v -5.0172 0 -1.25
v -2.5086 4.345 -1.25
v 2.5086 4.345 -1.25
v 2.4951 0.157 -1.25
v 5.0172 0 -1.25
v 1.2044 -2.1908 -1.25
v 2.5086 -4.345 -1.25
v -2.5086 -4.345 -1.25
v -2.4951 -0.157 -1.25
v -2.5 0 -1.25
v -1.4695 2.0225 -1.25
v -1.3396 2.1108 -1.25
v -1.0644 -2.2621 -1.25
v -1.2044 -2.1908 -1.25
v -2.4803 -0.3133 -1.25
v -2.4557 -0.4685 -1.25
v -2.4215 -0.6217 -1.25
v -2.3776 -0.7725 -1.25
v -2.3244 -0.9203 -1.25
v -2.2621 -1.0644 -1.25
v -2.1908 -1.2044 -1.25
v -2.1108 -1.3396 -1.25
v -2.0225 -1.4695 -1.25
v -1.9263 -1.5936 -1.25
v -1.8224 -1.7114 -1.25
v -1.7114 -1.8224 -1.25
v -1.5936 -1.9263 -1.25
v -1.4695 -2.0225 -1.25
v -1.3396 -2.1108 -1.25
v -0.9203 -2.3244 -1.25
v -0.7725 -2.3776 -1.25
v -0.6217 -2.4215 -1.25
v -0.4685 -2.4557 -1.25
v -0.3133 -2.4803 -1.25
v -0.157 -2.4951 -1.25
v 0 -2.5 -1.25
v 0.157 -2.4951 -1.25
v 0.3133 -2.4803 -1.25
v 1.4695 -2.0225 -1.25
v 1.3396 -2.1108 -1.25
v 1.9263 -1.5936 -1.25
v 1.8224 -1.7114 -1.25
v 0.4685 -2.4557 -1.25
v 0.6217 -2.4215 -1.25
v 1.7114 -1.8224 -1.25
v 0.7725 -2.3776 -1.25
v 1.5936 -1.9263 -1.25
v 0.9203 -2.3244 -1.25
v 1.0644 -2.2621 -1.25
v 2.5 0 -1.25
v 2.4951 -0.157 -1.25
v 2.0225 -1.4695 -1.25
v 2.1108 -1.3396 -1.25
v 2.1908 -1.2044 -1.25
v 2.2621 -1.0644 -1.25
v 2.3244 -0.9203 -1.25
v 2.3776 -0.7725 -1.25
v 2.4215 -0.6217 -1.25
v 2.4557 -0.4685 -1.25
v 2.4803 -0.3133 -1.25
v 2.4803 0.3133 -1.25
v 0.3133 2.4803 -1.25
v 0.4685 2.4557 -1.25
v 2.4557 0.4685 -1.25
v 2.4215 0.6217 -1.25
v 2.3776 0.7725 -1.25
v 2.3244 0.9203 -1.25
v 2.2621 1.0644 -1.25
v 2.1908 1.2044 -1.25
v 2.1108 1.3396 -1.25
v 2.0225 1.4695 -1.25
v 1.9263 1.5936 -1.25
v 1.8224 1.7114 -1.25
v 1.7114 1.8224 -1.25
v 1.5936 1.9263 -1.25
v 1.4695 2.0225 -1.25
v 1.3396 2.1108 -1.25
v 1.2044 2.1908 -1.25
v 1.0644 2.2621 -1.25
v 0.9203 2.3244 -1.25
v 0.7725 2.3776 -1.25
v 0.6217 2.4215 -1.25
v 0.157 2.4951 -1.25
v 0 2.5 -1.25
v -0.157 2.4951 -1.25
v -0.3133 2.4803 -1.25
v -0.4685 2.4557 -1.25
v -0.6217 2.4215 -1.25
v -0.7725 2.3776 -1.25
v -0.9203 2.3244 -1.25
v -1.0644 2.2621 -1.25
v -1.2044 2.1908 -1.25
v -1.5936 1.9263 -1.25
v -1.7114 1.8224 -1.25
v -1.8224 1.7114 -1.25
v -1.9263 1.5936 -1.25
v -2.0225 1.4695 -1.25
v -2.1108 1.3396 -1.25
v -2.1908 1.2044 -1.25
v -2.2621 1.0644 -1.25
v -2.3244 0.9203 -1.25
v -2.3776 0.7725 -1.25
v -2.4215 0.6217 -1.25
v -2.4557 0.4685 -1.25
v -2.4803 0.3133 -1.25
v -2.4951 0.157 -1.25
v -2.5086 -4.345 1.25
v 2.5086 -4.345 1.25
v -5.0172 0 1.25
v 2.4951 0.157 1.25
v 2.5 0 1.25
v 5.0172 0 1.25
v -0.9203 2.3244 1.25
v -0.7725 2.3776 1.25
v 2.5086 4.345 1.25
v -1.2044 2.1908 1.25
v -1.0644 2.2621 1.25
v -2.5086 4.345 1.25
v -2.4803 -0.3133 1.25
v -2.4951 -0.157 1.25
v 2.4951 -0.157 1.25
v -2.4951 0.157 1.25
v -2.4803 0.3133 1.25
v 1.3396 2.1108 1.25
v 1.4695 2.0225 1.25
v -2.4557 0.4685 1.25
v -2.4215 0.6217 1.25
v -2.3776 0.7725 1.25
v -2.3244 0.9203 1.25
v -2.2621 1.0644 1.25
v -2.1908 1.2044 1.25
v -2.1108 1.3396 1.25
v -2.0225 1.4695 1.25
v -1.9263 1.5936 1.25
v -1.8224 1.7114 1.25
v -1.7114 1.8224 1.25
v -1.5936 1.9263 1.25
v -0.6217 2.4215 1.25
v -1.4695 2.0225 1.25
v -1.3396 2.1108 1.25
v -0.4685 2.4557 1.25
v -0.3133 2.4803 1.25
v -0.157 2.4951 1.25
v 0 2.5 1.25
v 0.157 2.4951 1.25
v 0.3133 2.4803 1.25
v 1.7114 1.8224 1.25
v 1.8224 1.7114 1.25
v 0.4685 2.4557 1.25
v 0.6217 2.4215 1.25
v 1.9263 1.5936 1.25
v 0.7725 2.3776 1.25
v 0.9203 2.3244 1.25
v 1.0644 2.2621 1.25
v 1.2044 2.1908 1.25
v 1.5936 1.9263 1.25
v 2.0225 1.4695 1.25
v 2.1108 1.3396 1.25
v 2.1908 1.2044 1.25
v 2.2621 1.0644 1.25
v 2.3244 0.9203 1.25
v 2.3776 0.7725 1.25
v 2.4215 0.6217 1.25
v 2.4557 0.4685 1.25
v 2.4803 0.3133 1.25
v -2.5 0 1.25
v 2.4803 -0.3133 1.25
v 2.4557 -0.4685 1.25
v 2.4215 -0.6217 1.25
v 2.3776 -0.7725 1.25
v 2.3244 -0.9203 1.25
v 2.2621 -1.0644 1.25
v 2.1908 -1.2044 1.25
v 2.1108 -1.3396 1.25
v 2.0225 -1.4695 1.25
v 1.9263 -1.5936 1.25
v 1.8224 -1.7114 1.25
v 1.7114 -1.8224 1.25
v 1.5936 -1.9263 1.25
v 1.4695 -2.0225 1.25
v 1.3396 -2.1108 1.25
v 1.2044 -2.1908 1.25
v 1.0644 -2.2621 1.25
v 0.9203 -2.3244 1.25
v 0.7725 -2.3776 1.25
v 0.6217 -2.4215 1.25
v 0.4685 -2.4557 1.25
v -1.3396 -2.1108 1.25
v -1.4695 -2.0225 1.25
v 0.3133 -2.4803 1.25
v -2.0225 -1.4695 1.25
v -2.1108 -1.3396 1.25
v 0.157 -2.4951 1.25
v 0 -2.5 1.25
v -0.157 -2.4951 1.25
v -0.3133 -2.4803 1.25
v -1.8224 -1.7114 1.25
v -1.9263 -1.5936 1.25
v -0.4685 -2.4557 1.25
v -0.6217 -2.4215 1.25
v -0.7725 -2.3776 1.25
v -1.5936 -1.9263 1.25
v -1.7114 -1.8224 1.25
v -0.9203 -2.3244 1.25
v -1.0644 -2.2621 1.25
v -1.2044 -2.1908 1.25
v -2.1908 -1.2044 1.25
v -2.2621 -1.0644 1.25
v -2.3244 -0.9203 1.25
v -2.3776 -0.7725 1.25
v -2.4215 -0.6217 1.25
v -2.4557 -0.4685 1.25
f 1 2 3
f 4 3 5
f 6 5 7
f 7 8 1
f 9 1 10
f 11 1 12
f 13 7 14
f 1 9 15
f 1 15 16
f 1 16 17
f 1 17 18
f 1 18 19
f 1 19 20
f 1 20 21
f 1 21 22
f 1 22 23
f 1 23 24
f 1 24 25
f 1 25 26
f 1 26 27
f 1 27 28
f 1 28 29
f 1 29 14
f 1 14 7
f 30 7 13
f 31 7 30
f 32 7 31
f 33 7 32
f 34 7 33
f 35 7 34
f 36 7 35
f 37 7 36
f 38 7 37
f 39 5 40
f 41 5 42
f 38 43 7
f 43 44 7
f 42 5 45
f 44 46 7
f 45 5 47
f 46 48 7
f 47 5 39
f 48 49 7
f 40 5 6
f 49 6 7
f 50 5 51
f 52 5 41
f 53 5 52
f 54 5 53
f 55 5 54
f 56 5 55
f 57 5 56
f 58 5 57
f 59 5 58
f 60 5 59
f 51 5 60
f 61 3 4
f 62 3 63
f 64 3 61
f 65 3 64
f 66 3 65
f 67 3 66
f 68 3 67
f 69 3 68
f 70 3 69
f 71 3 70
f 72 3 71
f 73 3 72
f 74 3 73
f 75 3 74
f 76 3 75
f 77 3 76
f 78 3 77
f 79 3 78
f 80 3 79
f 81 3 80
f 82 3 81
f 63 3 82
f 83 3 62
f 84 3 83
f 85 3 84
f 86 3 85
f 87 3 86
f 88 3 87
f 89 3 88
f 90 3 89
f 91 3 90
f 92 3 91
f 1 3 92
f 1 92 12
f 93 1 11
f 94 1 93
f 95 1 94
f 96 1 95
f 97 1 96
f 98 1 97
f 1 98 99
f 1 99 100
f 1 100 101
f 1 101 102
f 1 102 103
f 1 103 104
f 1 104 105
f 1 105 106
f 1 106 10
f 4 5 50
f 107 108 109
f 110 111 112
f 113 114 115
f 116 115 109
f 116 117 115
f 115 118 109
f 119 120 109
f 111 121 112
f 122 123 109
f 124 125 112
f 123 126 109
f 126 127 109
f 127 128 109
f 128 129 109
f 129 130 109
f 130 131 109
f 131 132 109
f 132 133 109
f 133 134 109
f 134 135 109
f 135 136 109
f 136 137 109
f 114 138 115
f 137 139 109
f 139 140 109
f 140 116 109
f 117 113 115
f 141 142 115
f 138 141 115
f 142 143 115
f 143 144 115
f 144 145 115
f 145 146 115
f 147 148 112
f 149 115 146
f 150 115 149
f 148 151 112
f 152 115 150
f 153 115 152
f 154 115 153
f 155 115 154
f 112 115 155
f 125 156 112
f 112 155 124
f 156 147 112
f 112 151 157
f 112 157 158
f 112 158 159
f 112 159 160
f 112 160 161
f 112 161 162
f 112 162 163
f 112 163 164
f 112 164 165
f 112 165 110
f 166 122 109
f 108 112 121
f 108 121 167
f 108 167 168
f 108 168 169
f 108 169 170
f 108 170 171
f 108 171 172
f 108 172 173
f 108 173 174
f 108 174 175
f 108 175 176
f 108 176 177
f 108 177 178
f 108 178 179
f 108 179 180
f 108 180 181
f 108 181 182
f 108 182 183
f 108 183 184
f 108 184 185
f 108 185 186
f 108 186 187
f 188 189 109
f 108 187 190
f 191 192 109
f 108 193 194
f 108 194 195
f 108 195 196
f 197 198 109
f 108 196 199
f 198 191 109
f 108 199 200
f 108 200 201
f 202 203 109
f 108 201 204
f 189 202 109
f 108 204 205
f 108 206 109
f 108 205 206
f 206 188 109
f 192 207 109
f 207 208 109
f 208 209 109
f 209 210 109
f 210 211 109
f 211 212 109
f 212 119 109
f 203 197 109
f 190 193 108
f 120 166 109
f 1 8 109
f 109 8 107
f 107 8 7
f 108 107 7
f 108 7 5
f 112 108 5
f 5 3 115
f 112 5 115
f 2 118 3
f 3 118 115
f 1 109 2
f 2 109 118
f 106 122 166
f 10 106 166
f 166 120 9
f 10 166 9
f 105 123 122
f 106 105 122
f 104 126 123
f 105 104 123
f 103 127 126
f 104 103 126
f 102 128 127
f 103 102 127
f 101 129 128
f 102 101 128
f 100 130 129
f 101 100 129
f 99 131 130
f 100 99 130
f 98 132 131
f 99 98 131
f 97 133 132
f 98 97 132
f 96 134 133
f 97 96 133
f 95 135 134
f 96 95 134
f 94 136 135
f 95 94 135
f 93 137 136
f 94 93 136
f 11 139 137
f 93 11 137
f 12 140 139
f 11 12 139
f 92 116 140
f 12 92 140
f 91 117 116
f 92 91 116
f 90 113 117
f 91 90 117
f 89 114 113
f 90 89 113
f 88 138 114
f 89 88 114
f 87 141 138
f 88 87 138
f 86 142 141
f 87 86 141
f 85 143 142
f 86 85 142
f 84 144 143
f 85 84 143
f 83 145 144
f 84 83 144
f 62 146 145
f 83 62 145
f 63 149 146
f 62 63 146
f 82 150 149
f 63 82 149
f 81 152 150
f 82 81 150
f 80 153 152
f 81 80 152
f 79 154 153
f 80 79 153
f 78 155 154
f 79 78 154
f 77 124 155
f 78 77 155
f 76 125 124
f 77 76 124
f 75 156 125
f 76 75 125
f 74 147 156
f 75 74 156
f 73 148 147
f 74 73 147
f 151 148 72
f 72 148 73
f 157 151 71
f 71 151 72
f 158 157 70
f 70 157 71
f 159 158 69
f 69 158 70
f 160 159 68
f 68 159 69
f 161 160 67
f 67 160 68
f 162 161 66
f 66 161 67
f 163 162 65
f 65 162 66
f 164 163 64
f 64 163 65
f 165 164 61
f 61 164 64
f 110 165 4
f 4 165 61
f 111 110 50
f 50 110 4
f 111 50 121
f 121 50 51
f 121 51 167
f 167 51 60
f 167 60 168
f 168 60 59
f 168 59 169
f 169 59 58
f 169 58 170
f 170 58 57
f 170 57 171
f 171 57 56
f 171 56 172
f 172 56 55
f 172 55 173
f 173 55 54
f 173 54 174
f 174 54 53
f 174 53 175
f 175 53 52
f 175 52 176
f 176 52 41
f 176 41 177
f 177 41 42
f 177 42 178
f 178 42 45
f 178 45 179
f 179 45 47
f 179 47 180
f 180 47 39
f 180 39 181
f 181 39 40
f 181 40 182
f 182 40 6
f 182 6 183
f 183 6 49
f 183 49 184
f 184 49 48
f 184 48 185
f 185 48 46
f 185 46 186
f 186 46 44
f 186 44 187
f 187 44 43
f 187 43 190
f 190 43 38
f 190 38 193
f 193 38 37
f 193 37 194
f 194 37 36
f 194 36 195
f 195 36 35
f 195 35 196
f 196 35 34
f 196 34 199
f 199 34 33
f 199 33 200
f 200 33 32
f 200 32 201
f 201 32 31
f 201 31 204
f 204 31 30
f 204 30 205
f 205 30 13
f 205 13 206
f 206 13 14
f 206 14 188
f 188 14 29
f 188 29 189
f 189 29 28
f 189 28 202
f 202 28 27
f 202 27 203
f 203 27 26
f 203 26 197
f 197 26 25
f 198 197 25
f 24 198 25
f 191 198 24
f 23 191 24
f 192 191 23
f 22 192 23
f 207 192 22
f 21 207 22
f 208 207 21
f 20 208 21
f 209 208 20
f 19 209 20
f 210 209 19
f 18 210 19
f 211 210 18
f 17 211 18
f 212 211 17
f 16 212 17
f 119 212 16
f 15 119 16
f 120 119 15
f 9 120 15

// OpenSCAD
$fn=100;
//include<dim1.scad>
x=8.69;//M5
//x=5.214;//M3
r=x/tan(60);
echo(r);
difference(){
union(){
rotate([0,0,0])cube(size = [r,x,2.5], center = true);
rotate([0,0,-60])cube(size = [r,x,2.5], center = true);
rotate([0,0,-120])cube(size = [r,x,2.5], center = true);
}
cylinder(h = 3, r1 = 2.5, r2 = 2.5, center = true);
}
